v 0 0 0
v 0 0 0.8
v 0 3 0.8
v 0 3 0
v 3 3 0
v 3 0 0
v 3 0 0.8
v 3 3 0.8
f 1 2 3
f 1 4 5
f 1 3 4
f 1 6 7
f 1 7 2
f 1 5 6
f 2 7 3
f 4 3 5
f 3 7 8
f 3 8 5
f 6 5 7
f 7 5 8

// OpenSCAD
/* Warning, this is a very basic generator with a lot of approximation 
input data : [WQFN, NEA, 3x3x0.8mm, 16, , A, C04-01264A]
generated by com.zoubworld.electronics.cad.model3d.Basic
Date : Sun Feb 15 10:50:49 CET 2026
*/

//body
color("black")
translate([0,0,0])
cube([3.0,3.0,0.8], center=false);
